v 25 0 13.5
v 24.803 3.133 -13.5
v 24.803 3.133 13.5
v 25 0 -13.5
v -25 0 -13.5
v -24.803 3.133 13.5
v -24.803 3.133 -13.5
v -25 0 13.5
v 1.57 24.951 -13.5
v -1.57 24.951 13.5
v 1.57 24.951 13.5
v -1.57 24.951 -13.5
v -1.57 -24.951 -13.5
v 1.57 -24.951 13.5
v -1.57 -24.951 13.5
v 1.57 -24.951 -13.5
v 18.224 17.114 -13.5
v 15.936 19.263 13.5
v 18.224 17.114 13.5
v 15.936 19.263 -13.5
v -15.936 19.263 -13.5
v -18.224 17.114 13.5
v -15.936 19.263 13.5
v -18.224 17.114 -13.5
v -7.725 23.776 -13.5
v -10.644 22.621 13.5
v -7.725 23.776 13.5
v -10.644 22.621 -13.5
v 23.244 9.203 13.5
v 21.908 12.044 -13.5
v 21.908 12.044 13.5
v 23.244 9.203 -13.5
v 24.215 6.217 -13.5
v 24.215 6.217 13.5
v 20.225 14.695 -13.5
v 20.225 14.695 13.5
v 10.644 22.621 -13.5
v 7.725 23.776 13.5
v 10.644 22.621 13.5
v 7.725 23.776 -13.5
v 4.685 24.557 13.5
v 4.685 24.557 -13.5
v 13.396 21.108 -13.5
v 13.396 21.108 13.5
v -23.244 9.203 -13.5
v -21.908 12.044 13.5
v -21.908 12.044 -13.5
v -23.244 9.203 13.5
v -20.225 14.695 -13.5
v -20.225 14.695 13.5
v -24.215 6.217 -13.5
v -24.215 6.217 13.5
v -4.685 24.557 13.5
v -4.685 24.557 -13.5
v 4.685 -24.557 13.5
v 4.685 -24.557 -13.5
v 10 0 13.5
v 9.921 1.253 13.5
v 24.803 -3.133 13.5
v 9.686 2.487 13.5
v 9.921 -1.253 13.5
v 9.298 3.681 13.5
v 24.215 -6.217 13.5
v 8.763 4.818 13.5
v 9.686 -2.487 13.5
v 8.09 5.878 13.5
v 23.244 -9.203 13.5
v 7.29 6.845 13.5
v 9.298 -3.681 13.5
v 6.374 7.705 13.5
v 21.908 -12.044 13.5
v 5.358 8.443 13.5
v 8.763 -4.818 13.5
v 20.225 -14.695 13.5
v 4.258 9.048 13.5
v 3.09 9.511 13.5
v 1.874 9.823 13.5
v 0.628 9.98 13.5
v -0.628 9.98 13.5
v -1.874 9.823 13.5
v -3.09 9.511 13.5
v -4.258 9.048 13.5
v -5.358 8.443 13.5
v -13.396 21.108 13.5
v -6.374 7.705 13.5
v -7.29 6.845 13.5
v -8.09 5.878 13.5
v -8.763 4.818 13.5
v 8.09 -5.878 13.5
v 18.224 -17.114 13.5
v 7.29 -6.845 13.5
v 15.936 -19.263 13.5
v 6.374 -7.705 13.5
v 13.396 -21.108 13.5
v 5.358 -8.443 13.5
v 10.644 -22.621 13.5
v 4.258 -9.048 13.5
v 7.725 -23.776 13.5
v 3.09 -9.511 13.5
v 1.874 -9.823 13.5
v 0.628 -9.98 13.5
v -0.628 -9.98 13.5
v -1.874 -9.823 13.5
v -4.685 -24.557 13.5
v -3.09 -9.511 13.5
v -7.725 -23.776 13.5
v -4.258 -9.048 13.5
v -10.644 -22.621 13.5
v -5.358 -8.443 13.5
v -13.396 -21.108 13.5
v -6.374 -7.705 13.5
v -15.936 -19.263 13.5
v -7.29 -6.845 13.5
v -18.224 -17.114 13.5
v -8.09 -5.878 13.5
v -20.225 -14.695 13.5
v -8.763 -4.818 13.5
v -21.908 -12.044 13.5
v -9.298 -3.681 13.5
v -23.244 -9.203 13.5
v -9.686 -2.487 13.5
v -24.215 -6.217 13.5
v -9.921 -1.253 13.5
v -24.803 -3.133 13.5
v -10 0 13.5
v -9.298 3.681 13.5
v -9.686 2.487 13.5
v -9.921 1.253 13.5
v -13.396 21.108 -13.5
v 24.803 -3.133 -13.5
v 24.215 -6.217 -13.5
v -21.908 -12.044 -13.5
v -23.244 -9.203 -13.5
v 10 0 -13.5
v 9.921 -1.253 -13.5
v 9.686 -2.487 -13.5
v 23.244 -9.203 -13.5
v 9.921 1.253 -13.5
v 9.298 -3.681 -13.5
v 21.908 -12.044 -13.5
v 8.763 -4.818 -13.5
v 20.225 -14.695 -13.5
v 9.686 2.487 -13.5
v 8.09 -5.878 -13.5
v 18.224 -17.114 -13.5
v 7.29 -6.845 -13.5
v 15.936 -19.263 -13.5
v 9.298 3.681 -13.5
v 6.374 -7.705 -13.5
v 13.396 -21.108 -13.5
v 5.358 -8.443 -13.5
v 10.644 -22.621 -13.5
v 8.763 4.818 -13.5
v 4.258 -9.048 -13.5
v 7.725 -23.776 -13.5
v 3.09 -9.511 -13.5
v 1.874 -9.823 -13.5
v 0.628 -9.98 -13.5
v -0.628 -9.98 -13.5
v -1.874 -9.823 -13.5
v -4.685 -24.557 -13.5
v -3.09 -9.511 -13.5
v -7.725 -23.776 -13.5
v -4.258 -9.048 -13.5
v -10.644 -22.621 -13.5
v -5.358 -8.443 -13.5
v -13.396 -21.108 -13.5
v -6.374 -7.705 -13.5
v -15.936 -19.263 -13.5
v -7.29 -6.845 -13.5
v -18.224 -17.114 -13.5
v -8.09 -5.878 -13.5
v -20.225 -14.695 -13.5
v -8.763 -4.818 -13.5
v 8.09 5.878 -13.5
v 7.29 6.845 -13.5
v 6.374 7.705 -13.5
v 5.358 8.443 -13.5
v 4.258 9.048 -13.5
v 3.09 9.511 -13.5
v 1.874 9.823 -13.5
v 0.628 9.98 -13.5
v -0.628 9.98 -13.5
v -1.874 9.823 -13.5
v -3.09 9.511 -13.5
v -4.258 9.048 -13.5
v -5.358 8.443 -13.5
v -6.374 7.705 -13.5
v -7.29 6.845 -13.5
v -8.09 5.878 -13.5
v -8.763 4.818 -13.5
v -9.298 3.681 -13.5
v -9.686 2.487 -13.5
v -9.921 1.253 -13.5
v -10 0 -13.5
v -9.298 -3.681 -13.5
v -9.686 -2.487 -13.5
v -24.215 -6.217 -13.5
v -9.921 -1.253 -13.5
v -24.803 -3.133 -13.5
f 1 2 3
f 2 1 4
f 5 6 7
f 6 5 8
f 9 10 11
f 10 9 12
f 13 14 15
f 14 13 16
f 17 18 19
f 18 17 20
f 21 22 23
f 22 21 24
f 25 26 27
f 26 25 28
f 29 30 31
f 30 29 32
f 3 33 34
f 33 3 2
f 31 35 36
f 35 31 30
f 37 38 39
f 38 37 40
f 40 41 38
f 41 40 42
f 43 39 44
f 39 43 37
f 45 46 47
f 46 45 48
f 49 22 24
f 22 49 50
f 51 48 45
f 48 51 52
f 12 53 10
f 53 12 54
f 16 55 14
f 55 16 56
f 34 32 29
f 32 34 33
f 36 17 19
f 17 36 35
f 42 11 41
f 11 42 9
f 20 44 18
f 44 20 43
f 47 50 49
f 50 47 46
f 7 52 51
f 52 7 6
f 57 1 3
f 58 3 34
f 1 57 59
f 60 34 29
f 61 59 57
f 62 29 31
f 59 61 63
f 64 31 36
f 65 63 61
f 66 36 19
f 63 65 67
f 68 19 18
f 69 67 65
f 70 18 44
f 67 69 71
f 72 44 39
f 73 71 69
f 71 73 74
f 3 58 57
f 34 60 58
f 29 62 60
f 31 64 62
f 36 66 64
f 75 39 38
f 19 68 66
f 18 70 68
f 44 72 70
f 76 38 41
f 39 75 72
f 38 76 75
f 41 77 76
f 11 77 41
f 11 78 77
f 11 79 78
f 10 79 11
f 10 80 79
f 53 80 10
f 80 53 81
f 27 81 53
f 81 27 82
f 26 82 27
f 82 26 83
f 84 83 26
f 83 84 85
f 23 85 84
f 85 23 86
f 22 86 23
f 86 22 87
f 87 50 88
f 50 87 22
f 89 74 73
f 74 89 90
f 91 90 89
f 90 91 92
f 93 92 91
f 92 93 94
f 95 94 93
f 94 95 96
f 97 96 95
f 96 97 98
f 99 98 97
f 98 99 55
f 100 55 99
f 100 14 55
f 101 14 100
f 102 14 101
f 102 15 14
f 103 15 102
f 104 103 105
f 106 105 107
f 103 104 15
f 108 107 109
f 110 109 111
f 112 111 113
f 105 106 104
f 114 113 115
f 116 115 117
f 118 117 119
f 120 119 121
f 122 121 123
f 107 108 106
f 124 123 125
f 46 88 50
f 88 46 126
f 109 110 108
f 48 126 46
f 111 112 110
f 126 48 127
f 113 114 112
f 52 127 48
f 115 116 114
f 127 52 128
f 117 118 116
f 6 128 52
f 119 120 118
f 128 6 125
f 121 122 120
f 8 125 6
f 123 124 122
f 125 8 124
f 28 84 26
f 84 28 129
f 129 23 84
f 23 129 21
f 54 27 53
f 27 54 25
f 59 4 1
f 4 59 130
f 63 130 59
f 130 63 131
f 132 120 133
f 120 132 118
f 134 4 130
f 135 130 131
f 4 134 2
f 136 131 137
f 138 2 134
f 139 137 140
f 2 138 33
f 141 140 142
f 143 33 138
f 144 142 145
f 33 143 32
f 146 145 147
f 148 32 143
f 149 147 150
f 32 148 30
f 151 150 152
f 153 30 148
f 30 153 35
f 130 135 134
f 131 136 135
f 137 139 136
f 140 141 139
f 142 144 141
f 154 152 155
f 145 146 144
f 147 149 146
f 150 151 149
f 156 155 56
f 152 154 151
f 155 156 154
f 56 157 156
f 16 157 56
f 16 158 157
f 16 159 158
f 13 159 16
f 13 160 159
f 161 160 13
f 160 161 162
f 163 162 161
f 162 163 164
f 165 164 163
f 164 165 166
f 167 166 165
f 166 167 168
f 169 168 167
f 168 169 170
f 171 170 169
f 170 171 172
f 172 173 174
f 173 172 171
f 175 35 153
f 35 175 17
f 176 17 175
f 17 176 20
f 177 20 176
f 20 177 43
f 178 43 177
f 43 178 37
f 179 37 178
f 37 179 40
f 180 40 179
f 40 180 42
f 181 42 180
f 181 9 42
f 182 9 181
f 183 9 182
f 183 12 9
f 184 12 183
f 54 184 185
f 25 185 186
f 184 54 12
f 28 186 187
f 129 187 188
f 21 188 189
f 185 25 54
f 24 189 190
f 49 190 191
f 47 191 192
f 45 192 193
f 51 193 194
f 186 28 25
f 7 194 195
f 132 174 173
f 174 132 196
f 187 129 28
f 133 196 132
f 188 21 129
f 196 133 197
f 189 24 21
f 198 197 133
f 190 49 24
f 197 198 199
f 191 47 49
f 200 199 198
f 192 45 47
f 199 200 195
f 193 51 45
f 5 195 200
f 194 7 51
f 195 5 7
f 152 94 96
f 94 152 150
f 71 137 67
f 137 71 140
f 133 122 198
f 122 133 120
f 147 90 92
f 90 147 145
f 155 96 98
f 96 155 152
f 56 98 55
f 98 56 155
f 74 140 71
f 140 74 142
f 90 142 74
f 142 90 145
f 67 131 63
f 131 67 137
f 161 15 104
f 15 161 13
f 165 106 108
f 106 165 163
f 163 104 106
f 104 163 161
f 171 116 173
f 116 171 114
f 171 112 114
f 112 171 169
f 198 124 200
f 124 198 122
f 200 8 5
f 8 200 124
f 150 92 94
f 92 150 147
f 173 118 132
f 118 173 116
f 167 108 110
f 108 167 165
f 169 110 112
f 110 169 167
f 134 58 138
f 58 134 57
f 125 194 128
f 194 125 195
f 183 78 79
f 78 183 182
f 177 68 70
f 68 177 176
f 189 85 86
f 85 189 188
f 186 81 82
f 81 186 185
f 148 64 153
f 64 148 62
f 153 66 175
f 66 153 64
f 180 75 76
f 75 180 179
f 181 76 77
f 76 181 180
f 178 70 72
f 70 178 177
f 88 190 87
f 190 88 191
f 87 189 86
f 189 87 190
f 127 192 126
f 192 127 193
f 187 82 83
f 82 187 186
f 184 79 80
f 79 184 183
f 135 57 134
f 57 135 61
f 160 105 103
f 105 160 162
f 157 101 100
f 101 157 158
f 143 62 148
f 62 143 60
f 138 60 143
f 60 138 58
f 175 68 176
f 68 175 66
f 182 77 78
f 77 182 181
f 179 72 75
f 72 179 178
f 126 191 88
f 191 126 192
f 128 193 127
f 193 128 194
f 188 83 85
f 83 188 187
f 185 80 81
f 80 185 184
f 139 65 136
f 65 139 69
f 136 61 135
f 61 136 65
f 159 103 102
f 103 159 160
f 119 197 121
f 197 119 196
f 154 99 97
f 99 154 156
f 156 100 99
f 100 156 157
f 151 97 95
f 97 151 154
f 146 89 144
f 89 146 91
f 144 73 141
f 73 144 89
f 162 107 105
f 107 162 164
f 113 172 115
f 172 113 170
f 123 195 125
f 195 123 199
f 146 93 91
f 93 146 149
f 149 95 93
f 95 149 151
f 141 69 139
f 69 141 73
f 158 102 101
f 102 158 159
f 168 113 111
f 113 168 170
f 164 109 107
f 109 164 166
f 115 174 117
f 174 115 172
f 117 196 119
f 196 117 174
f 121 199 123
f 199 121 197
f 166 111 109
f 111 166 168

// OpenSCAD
$fn = 50;


difference() {
	union() {
		translate(v = [0, 0, -13.5000000000]) {
			cylinder(h = 27, r = 25.0000000000);
		}
	}
	union() {
		translate(v = [0, 0, -100.0000000000]) {
			cylinder(h = 200, r = 10);
		}
	}
}
